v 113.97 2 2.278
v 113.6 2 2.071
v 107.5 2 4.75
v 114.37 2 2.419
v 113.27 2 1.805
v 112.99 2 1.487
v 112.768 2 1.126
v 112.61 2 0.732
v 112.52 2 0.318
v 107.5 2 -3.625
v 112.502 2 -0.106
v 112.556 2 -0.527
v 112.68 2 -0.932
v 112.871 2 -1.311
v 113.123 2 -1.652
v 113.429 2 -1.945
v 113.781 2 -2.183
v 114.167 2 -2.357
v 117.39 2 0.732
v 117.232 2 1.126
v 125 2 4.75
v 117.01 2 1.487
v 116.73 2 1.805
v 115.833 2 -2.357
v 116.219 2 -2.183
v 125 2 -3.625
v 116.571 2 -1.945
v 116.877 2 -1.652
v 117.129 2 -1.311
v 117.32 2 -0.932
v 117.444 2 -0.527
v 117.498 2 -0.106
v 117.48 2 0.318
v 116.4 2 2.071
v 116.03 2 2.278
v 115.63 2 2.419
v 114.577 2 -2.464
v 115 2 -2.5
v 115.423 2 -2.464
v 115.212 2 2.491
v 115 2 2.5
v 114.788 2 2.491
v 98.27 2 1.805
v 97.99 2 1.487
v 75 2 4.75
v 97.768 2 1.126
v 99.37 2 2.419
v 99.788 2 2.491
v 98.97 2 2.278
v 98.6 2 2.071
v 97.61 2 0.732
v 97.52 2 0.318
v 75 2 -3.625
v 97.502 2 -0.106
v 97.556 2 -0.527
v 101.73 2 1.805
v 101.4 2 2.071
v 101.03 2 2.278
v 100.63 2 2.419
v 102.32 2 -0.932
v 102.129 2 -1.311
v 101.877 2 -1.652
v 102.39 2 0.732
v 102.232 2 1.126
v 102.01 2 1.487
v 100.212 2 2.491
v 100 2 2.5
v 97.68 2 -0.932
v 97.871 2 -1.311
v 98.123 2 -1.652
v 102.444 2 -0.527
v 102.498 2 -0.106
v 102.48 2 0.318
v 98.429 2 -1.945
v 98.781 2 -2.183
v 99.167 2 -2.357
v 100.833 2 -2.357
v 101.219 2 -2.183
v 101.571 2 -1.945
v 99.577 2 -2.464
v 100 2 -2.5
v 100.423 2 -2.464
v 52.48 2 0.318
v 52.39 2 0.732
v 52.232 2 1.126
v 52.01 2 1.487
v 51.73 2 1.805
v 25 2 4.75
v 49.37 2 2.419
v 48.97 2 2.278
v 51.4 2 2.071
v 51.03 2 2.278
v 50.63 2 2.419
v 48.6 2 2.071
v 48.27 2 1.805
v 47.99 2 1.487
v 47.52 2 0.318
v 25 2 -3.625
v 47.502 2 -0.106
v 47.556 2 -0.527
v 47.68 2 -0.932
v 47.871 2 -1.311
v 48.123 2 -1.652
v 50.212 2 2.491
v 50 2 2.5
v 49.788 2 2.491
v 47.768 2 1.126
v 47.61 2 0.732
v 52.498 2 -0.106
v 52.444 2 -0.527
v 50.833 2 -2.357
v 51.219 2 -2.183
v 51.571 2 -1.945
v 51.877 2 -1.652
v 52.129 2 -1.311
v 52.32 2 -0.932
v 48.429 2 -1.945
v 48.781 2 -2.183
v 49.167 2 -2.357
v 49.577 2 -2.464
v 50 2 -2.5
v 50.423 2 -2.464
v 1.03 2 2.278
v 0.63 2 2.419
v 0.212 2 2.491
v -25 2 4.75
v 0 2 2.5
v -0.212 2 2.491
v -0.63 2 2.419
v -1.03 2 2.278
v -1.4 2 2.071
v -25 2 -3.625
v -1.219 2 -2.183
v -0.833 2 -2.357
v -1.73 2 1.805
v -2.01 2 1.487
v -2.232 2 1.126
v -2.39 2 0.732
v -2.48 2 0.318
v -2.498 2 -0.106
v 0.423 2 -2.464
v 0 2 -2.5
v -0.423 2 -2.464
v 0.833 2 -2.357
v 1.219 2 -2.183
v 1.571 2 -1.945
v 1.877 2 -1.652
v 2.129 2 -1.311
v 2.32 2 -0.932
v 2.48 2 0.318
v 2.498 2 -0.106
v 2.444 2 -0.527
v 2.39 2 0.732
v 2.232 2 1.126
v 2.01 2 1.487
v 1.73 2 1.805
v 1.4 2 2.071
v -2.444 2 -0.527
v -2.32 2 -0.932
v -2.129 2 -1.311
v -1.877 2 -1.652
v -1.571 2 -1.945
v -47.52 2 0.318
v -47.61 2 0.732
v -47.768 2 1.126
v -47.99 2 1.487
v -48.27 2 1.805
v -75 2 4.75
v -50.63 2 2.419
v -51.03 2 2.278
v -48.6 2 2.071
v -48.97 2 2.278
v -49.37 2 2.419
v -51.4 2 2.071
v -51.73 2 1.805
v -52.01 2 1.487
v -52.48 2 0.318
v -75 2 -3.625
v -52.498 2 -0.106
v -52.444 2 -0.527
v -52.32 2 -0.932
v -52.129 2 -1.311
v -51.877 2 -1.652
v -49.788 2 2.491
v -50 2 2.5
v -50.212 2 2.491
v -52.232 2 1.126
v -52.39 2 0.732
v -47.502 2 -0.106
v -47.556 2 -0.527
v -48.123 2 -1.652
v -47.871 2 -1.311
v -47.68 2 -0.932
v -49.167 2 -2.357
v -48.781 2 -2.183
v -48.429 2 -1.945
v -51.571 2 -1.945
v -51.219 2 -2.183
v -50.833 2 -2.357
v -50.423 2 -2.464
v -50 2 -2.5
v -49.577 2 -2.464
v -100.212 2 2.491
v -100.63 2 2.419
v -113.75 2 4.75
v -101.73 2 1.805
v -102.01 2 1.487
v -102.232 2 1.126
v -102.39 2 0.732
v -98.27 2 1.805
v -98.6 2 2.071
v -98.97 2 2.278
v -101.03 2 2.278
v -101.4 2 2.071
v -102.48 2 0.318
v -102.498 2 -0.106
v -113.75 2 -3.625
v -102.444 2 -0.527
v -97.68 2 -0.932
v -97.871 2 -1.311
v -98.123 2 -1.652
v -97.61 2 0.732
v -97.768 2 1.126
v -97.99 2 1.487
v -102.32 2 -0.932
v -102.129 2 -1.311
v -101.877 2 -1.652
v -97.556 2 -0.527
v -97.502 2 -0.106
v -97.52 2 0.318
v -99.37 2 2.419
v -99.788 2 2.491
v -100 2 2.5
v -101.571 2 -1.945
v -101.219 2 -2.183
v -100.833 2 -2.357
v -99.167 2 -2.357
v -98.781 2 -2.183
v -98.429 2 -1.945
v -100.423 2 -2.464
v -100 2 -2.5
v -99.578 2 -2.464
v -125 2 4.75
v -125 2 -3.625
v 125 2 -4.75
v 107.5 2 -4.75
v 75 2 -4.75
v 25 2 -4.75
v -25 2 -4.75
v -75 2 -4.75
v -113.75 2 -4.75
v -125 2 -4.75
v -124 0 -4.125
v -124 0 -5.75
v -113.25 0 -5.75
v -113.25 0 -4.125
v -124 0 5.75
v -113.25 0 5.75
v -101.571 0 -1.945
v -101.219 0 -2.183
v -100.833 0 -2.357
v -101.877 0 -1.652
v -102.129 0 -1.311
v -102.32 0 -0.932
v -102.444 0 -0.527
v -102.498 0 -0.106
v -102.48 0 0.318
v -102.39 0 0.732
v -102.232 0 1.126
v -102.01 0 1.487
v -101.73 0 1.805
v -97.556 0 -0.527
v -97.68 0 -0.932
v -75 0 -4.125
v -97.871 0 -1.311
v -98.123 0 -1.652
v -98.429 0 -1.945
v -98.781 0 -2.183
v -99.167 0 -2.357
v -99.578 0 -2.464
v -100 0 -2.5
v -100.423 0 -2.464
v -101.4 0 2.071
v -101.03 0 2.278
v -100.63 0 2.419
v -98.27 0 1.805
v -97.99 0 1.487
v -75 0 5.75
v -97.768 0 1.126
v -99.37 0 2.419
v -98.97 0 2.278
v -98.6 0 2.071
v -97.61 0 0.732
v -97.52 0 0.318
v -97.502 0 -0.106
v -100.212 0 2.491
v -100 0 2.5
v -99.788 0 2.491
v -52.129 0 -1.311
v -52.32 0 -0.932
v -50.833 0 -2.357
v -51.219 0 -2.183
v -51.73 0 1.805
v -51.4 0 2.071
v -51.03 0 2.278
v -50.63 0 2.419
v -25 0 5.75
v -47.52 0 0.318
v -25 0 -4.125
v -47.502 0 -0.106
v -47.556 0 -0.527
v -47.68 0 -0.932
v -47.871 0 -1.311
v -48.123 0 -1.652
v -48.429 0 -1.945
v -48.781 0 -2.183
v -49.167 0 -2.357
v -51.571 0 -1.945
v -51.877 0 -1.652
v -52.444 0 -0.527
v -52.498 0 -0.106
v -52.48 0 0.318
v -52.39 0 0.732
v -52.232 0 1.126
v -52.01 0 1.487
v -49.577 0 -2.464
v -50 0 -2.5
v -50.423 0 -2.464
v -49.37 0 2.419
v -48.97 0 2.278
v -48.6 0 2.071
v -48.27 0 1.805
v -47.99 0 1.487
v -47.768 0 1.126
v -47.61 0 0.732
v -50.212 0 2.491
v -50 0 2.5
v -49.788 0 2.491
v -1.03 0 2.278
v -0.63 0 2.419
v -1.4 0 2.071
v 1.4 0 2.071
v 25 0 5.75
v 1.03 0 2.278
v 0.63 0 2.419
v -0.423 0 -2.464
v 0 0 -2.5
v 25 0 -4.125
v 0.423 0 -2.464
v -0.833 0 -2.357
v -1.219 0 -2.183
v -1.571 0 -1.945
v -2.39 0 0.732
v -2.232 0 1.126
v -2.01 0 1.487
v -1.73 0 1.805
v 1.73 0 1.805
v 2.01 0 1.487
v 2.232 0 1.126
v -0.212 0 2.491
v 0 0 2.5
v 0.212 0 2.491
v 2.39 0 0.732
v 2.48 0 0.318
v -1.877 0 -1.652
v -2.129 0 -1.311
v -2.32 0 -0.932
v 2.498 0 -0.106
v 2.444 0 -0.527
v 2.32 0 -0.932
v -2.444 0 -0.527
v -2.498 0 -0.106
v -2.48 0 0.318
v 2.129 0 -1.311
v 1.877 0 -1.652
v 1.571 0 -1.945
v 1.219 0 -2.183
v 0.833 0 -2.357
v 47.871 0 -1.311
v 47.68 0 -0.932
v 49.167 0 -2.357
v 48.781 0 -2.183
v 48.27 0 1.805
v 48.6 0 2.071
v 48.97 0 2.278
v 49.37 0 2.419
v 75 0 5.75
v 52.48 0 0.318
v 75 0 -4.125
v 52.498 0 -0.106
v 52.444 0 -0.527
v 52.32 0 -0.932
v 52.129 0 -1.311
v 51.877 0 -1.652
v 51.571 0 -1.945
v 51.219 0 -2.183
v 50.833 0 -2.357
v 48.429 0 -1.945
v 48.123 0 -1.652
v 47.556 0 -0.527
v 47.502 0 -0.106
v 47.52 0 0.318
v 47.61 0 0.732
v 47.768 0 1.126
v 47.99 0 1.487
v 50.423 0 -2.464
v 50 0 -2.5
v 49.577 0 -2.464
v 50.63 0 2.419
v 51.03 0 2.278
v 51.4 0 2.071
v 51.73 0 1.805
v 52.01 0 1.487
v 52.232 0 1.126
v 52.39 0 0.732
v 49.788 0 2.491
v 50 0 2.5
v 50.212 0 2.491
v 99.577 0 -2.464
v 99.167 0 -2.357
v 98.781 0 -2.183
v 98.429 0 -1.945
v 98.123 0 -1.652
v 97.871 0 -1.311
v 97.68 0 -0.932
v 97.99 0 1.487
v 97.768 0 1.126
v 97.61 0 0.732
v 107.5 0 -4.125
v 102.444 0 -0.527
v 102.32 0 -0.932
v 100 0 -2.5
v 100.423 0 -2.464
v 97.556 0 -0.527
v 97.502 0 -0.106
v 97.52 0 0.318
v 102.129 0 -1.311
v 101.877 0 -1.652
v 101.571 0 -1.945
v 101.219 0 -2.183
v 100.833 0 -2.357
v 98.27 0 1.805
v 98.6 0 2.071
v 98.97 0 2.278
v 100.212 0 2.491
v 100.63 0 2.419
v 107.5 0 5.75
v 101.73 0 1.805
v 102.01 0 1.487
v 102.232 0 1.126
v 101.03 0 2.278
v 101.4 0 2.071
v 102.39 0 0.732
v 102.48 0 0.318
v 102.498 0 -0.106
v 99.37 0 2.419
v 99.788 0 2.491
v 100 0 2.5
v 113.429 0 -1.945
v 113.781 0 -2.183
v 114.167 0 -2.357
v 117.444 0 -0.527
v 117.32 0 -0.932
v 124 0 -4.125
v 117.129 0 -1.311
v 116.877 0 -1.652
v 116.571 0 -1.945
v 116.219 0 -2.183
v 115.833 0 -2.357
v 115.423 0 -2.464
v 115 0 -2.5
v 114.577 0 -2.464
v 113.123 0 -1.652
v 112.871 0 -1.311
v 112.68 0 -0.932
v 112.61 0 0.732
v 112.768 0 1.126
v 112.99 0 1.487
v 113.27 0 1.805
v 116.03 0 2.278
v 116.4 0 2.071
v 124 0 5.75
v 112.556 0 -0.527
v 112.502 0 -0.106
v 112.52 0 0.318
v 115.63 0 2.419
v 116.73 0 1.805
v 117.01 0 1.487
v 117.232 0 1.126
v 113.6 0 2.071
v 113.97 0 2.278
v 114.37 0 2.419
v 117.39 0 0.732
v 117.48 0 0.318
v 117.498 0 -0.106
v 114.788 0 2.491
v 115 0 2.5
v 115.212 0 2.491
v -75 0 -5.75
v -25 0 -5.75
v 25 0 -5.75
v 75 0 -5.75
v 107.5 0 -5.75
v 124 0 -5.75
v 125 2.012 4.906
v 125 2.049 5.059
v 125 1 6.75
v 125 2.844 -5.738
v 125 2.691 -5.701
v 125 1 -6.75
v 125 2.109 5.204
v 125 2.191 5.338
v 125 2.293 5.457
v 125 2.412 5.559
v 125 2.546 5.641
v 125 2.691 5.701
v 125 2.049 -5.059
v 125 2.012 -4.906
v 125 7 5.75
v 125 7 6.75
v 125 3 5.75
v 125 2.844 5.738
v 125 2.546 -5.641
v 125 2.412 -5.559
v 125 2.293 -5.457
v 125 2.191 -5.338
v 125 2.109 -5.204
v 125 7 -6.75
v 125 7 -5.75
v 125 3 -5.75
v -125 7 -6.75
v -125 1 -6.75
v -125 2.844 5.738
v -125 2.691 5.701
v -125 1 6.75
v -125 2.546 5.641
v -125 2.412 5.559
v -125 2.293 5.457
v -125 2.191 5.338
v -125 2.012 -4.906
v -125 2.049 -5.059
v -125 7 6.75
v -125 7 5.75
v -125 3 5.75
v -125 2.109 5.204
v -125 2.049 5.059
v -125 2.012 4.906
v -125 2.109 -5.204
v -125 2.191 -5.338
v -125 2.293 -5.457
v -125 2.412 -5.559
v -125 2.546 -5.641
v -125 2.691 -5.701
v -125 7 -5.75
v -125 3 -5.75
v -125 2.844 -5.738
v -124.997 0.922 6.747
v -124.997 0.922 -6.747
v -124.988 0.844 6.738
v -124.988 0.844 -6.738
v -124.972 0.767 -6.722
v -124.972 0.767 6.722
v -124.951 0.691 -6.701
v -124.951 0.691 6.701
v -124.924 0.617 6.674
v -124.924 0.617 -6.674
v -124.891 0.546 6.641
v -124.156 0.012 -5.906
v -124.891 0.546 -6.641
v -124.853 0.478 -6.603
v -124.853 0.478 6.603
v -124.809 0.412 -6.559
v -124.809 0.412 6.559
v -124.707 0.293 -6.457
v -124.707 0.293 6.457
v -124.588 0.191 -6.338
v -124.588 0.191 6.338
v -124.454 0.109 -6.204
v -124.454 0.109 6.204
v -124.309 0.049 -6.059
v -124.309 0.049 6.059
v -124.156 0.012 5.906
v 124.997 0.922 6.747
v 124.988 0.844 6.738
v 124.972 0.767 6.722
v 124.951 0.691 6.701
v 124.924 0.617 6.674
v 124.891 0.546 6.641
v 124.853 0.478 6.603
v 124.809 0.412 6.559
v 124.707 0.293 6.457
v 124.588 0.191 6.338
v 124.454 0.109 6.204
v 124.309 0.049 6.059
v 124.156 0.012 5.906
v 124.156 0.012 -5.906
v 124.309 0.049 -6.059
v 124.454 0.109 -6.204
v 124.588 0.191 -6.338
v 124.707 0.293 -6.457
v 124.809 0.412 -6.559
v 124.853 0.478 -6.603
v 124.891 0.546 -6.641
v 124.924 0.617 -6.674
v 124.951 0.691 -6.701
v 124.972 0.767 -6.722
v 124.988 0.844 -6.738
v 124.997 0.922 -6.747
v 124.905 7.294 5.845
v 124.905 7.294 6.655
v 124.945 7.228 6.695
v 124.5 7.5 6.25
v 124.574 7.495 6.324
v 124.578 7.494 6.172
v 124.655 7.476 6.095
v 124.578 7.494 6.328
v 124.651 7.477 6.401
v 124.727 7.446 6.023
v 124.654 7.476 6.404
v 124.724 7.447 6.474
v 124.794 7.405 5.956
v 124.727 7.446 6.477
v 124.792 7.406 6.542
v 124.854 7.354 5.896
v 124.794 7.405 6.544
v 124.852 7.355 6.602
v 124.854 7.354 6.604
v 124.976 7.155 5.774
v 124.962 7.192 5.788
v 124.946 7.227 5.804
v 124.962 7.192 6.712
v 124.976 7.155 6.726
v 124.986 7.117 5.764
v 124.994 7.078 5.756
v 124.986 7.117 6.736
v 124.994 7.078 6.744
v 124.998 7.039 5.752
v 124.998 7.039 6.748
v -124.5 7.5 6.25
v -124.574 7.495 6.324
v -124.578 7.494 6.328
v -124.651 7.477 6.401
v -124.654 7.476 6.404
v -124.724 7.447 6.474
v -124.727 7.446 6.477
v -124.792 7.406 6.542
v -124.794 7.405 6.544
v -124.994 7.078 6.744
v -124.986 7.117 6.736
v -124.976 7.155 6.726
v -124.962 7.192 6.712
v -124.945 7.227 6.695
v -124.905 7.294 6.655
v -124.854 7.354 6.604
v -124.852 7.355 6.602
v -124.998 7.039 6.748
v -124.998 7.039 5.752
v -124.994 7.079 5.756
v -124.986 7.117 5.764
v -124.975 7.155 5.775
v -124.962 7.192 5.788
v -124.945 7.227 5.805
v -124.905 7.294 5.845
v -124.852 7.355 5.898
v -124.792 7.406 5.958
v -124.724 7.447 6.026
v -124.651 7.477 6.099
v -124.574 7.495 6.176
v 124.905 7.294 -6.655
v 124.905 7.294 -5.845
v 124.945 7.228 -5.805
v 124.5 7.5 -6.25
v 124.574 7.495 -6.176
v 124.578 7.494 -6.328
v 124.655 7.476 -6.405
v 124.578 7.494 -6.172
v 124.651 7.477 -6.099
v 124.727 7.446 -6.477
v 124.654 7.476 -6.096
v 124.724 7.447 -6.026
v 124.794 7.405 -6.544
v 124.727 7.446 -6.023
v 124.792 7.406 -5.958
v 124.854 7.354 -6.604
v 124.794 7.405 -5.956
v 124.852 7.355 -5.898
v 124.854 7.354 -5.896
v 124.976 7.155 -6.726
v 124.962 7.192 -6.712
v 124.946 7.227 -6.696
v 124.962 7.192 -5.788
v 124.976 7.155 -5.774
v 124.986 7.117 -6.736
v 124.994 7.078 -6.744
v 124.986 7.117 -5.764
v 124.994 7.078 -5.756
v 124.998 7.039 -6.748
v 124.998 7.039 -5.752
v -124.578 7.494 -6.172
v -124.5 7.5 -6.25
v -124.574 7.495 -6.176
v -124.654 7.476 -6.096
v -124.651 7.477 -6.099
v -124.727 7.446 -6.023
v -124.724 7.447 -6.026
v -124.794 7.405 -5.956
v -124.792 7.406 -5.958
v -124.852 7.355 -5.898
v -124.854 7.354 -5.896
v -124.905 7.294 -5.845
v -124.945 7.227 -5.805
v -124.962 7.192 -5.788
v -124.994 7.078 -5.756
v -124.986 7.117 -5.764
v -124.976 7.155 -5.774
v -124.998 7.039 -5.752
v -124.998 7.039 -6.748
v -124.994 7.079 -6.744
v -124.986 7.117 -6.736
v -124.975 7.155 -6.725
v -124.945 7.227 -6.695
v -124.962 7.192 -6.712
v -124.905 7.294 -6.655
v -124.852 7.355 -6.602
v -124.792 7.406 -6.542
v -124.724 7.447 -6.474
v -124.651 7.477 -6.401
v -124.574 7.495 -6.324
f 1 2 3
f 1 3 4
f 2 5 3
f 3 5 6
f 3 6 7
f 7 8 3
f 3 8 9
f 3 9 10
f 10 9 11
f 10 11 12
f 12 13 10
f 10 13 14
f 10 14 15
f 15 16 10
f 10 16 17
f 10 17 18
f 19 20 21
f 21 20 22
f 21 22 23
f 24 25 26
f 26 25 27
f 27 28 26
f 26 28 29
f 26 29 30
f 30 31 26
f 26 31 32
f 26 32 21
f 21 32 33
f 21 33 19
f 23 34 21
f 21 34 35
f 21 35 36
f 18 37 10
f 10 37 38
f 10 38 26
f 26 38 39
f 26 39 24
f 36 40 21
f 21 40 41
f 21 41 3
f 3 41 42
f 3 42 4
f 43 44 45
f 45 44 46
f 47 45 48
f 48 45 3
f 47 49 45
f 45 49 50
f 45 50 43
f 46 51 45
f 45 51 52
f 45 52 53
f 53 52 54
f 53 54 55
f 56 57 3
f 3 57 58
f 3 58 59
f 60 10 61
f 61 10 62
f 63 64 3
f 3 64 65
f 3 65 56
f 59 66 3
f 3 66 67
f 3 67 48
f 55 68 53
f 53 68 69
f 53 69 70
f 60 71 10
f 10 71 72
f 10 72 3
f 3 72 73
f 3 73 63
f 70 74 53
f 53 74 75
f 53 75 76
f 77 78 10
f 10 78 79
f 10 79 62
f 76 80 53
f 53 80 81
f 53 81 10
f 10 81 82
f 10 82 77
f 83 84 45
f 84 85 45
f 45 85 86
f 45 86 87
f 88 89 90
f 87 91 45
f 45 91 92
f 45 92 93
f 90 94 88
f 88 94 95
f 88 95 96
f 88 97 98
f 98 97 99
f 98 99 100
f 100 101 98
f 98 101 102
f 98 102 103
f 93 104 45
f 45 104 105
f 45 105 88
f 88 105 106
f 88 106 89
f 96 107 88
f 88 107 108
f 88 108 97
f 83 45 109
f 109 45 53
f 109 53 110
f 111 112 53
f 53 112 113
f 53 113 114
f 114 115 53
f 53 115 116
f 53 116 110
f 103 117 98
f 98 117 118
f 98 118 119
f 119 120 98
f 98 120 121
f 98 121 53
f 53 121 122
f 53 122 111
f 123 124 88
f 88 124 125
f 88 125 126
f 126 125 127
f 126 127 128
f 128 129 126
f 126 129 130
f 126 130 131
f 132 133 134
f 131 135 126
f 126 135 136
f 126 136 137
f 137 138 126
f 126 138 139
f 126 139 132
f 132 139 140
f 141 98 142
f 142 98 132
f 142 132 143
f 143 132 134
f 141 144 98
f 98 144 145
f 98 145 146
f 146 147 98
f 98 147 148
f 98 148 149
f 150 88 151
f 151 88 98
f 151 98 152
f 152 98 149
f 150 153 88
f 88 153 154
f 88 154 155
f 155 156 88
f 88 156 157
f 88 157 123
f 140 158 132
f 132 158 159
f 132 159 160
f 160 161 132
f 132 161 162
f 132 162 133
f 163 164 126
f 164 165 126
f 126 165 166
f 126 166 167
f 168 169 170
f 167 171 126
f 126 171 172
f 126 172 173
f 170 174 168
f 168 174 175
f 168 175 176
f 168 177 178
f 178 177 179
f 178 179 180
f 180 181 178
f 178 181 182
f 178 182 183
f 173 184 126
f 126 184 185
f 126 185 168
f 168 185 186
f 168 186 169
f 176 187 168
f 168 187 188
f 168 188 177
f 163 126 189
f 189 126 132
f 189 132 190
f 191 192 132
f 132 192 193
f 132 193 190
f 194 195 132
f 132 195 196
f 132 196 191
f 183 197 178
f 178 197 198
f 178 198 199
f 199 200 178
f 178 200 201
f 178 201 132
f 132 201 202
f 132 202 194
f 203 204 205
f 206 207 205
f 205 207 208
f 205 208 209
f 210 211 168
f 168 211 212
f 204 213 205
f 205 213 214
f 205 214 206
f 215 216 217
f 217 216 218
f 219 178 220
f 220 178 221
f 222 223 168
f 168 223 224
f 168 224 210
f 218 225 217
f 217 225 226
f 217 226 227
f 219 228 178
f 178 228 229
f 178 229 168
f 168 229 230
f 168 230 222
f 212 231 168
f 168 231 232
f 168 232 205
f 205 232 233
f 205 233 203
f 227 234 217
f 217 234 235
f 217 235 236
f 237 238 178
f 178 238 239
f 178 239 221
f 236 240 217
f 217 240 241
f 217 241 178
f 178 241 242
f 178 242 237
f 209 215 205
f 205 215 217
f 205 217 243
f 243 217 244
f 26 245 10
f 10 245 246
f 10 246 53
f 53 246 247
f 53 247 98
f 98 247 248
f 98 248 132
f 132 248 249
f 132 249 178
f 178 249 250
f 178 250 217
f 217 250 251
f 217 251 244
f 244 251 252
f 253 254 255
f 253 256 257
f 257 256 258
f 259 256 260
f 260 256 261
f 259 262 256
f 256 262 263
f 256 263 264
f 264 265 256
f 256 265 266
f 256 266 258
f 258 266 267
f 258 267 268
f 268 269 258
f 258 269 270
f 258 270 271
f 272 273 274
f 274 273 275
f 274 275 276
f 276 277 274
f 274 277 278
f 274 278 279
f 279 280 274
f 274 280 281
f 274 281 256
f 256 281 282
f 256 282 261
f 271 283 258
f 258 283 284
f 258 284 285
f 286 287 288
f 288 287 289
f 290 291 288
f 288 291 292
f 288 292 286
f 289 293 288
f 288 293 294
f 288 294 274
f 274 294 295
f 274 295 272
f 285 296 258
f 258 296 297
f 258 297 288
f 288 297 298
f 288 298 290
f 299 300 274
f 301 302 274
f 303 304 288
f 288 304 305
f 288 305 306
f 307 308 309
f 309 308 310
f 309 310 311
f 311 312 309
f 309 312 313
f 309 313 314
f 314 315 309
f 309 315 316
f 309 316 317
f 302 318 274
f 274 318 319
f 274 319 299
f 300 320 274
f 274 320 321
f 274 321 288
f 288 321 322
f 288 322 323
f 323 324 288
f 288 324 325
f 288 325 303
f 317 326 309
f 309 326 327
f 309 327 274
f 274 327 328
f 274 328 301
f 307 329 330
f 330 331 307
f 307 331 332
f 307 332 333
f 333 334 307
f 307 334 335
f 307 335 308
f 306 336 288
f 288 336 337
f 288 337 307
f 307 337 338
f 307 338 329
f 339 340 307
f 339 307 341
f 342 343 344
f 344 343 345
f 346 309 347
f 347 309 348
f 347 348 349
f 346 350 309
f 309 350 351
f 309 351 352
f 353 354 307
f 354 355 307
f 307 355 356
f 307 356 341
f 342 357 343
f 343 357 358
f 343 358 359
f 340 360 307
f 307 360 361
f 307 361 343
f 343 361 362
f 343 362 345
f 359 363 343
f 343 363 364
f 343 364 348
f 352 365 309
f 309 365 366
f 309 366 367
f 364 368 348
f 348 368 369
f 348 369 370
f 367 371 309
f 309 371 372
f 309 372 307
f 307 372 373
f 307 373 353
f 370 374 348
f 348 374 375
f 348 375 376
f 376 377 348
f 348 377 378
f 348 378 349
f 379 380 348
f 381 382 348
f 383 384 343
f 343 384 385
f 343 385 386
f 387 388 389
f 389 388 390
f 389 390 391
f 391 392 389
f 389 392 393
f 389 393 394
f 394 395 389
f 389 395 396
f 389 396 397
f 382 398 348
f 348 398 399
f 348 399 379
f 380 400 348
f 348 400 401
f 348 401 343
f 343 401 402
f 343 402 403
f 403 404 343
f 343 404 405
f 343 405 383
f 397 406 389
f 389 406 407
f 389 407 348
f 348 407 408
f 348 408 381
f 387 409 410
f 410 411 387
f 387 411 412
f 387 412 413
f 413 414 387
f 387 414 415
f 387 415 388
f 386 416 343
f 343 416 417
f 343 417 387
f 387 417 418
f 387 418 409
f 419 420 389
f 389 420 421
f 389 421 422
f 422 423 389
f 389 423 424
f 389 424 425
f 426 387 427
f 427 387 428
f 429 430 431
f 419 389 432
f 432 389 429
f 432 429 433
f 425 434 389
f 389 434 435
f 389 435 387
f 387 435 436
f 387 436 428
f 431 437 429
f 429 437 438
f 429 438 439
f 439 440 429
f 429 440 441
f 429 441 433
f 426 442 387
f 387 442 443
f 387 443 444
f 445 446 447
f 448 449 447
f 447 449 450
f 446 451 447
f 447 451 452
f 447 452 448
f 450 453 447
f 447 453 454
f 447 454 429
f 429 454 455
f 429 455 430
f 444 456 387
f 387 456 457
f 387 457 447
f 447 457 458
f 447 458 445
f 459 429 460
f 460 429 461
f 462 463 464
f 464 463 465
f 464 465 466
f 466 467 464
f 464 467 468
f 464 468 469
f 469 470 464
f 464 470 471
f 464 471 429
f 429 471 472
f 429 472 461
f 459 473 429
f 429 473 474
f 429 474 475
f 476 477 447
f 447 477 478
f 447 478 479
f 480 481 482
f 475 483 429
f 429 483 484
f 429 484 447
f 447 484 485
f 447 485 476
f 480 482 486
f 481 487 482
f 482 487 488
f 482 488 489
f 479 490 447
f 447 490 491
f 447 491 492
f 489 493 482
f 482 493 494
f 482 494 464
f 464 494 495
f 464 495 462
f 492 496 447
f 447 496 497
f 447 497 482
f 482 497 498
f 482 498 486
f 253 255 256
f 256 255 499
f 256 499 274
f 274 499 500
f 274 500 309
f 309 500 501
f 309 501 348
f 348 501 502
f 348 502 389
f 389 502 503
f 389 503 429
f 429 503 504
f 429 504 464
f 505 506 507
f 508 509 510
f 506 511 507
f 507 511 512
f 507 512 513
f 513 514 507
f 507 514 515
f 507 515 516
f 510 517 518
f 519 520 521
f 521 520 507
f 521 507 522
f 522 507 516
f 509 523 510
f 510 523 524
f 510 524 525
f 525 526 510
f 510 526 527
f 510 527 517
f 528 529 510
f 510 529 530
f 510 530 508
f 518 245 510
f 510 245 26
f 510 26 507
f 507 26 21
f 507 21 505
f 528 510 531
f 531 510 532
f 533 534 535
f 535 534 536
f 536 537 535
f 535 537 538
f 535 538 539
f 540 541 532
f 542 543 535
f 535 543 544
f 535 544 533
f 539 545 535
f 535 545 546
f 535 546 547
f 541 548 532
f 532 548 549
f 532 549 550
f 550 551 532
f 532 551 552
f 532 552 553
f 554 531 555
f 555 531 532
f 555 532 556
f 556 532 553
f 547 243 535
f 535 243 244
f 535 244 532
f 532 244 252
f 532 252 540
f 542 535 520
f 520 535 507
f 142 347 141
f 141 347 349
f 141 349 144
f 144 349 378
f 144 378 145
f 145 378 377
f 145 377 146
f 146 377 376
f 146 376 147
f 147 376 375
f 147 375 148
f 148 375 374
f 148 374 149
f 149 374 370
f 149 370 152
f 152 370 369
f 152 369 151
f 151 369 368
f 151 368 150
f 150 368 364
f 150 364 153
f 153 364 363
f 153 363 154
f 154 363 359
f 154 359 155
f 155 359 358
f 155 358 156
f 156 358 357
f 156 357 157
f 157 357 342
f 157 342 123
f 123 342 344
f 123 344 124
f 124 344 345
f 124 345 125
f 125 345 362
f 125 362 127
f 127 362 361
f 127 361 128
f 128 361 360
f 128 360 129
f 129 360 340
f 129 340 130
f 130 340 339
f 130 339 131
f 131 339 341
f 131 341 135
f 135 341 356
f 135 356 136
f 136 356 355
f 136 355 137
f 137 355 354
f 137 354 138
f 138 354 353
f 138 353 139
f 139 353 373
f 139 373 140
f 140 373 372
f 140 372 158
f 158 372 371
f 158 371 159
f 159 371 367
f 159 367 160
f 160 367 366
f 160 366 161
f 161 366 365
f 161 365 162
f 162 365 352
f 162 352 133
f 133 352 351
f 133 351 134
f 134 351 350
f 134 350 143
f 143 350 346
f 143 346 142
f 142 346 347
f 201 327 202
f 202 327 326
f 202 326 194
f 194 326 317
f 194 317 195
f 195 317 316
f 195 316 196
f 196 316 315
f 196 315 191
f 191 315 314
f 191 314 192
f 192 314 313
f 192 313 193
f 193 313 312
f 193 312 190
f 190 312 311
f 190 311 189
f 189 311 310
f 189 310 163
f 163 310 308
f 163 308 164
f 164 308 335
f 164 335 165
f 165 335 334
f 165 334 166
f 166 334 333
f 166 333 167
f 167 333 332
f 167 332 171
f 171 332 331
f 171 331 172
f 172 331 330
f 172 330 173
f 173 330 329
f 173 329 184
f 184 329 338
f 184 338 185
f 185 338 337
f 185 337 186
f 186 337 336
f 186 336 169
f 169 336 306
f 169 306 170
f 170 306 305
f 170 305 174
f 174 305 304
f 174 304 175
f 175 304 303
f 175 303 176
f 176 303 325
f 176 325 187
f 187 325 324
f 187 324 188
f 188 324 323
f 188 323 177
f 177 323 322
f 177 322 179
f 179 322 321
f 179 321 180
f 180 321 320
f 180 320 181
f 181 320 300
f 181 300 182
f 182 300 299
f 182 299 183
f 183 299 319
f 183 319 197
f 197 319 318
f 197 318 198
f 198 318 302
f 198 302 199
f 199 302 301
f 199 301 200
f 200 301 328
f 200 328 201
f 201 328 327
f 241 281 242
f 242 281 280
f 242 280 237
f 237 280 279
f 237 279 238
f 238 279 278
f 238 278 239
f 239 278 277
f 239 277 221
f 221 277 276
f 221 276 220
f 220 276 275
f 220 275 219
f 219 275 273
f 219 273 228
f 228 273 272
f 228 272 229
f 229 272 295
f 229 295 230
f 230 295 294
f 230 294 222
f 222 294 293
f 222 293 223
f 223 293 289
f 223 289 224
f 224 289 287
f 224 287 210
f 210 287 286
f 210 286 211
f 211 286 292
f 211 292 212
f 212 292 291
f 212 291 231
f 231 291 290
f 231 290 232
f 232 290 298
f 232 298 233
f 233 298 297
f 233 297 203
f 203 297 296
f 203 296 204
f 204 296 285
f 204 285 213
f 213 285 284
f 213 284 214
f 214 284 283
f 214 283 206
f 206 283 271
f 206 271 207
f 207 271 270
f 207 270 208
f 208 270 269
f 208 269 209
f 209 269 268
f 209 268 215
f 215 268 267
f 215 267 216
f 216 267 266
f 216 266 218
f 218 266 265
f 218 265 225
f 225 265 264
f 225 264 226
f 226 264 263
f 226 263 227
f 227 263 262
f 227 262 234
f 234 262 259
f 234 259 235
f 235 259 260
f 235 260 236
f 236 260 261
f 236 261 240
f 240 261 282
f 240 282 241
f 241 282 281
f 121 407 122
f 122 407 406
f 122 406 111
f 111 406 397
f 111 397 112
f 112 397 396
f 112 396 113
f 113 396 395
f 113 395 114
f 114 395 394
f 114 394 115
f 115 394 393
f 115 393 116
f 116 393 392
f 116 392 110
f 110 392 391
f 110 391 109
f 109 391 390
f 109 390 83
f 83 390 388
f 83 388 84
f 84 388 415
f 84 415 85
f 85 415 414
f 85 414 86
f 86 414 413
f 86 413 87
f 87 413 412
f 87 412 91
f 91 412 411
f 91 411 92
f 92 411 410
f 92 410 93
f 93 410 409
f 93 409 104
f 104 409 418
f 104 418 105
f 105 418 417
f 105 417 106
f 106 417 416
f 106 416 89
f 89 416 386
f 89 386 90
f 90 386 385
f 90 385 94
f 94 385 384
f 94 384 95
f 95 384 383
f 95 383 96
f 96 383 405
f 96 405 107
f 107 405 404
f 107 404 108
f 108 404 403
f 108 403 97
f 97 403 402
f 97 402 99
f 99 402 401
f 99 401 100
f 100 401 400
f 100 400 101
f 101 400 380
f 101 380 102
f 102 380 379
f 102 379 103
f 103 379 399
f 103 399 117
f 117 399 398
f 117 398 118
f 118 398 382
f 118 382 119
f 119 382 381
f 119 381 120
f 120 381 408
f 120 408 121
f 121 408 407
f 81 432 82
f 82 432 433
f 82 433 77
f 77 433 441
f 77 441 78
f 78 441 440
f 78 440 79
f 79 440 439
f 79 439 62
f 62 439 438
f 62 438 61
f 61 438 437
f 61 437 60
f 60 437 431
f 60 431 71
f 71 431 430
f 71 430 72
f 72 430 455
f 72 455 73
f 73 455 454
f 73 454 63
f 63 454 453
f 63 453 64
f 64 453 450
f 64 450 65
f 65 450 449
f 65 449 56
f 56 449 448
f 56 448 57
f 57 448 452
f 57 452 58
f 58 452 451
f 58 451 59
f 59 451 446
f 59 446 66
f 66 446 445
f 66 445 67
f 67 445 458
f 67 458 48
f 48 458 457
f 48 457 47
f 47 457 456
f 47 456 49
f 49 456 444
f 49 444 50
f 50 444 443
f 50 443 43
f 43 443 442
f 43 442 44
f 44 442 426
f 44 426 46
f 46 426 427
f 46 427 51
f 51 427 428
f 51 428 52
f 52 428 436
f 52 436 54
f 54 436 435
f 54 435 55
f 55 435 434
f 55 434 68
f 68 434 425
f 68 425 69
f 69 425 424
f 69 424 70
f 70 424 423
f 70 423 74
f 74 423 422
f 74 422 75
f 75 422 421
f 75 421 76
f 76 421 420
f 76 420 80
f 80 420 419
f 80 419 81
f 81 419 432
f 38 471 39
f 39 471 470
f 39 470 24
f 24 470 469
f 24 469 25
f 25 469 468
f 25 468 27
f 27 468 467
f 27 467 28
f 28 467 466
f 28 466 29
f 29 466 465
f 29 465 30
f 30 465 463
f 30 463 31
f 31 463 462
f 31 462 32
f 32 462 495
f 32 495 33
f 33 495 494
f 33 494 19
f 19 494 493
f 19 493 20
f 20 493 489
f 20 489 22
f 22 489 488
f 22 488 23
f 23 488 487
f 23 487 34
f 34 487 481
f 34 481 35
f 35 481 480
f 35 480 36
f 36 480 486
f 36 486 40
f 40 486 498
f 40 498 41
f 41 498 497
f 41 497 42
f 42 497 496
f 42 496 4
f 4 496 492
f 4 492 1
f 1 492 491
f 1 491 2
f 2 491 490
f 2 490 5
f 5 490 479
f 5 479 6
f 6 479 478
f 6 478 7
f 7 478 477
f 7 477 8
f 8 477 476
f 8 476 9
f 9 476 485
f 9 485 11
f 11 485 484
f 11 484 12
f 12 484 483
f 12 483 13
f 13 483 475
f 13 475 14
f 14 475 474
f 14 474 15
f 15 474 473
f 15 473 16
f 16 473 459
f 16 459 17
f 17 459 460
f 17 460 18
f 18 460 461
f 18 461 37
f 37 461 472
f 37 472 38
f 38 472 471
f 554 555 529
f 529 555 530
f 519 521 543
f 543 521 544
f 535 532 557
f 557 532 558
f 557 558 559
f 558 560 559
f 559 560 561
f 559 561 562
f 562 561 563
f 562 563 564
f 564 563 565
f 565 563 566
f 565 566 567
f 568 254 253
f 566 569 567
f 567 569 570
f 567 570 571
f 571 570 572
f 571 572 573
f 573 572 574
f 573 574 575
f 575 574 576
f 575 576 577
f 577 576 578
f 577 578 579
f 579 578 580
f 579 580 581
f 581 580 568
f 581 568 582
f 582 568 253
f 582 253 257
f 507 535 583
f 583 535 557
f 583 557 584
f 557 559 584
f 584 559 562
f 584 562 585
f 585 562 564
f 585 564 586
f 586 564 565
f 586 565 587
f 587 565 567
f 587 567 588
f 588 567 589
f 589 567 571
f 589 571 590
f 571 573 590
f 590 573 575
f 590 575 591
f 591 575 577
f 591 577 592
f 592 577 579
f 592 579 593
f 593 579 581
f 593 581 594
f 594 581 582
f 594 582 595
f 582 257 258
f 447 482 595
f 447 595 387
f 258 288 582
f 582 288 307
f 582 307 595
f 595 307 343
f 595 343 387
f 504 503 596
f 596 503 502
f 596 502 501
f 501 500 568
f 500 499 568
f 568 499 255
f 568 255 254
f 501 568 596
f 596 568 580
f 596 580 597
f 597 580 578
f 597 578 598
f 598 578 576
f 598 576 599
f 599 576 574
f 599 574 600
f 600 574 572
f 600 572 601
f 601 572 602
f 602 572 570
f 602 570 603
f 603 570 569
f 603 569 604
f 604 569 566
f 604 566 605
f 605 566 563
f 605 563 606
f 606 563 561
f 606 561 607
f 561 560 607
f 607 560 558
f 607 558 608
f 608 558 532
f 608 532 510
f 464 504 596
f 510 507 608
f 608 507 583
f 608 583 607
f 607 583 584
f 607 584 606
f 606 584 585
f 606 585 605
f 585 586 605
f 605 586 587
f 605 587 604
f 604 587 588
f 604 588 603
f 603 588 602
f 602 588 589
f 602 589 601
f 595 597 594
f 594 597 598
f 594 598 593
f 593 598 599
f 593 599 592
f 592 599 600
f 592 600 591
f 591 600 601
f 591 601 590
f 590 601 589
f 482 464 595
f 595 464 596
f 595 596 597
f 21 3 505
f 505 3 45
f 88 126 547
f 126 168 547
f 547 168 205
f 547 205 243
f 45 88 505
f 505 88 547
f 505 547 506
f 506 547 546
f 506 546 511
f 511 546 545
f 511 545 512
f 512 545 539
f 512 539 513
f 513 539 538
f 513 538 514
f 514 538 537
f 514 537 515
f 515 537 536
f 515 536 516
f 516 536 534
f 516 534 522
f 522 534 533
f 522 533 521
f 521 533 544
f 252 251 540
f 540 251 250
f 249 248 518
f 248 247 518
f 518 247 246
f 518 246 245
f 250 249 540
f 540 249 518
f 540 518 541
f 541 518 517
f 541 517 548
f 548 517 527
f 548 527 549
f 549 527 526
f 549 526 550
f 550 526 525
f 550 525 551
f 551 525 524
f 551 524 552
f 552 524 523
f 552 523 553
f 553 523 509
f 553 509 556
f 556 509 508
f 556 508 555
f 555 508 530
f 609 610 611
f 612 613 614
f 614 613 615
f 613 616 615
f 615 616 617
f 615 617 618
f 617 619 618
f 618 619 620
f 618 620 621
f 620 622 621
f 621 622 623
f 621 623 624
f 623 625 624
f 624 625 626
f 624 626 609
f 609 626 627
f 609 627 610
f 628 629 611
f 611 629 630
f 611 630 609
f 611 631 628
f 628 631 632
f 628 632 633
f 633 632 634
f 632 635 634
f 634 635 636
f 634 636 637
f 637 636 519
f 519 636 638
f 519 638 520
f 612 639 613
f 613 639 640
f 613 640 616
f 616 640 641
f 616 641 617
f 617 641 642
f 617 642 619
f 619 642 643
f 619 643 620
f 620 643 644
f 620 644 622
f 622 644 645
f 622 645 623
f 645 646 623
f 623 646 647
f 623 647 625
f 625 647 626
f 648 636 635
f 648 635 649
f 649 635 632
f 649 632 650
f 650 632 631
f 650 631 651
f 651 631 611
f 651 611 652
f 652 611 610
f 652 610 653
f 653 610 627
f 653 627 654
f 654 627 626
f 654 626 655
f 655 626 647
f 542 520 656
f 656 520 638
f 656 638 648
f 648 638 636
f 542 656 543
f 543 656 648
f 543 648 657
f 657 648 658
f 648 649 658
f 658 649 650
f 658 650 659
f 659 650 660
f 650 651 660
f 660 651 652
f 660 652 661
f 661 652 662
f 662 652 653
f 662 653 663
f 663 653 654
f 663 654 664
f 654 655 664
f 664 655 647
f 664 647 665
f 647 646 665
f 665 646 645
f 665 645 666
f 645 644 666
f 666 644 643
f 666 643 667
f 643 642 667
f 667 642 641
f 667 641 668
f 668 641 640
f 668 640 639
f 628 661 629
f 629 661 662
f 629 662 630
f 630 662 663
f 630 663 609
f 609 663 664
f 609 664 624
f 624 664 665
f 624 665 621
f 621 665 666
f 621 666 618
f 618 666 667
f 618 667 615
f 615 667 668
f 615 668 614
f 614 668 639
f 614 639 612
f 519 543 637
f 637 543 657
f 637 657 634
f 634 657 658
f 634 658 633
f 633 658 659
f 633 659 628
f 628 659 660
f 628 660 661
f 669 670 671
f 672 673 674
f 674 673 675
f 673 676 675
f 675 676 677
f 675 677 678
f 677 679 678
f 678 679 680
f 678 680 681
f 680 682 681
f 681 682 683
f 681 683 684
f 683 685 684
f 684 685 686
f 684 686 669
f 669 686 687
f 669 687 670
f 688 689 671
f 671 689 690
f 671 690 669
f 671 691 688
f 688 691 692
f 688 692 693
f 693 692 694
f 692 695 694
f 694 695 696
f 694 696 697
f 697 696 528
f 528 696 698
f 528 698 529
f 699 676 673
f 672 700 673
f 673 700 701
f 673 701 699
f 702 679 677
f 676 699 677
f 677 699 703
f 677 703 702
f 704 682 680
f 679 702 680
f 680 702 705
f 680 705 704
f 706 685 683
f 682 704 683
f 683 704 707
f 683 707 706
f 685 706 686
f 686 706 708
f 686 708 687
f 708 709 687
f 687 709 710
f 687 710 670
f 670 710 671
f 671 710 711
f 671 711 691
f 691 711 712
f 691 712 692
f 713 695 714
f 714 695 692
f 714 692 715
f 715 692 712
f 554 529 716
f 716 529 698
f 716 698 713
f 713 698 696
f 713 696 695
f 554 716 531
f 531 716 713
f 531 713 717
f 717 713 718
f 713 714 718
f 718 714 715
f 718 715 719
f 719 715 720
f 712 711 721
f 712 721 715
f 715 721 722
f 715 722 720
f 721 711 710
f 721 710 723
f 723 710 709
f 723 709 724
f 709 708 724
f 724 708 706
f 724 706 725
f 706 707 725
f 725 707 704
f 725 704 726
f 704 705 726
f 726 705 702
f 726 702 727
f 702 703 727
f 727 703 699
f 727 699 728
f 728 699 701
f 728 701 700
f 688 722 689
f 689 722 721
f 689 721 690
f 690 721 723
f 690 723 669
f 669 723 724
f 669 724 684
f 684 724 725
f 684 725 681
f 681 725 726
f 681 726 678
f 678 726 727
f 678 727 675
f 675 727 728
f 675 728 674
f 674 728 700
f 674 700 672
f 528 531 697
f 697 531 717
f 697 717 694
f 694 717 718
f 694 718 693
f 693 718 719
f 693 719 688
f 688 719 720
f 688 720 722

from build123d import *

# Parameters (mm, degrees)
SKETCH1_W           = 250
SKETCH1_H           = 13.5
SKETCH1_R           = 2.5
BOSS_EXTRUDE1_DEPTH = 2
SKETCH3_W           = 250
SKETCH3_H           = 1
BOSS_EXTRUDE2_DEPTH = 5.5
FILLET1_R           = 1
FILLET2_R           = 0.5


with BuildPart() as part:
    # Sketch1 → Boss-Extrude1 (new body)
    with BuildSketch(Plane(origin=(0, 0, 0), x_dir=(1, 0, 0), z_dir=(0, 1, 0))):
        Rectangle(SKETCH1_W, SKETCH1_H)
        with Locations(Location((0, 0, 0), (0, 0, 270))):
            Circle(SKETCH1_R, mode=Mode.SUBTRACT)
        with Locations(Location((-50, 0, 0), (0, 0, 270))):
            Circle(SKETCH1_R, mode=Mode.SUBTRACT)
        with Locations(Location((-100, 0, 0), (0, 0, 270))):
            Circle(SKETCH1_R, mode=Mode.SUBTRACT)
        with Locations(Location((50, 0, 0), (0, 0, 270))):
            Circle(SKETCH1_R, mode=Mode.SUBTRACT)
        with Locations(Location((100, 0, 0), (0, 0, 270))):
            Circle(SKETCH1_R, mode=Mode.SUBTRACT)
        with Locations(Location((115, 0, 0), (0, 0, 270))):
            Circle(SKETCH1_R, mode=Mode.SUBTRACT)
    extrude(amount=BOSS_EXTRUDE1_DEPTH)

    # Sketch3 → Boss-Extrude2 (add)
    with BuildSketch(Plane(origin=(0, 2, 0), x_dir=(1, 0, 0), z_dir=(0, 1, 0))):
        with Locations((0, 6.25)):
            Rectangle(SKETCH3_W, SKETCH3_H)
        with Locations((0, -6.25)):
            Rectangle(SKETCH3_W, SKETCH3_H)
    extrude(amount=BOSS_EXTRUDE2_DEPTH)

    # Fillet1
    fillet1_edges = [part.edges().sort_by_distance(p)[0] for p in [
        (0, 2, -5.75),
        (0, 0, 6.75),
        (0, 2, 5.75),
        (-125, 0, 0),
        (0, 0, -6.75),
        (125, 0, 0),
    ]]
    fillet(fillet1_edges, radius=FILLET1_R)

    # Fillet2
    fillet2_edges = [part.edges().sort_by_distance(p)[0] for p in [
        (-125, 7.5, -6.25),
        (0, 7.5, -5.75),
        (125, 7.5, -6.25),
        (0, 7.5, -6.75),
        (-125, 7.5, 6.25),
        (0, 7.5, 6.75),
        (125, 7.5, 6.25),
        (0, 7.5, 5.75),
    ]]
    fillet(fillet2_edges, radius=FILLET2_R - 0.0001)  # a hair under: the kernel refuses the full size


solid = part.part
